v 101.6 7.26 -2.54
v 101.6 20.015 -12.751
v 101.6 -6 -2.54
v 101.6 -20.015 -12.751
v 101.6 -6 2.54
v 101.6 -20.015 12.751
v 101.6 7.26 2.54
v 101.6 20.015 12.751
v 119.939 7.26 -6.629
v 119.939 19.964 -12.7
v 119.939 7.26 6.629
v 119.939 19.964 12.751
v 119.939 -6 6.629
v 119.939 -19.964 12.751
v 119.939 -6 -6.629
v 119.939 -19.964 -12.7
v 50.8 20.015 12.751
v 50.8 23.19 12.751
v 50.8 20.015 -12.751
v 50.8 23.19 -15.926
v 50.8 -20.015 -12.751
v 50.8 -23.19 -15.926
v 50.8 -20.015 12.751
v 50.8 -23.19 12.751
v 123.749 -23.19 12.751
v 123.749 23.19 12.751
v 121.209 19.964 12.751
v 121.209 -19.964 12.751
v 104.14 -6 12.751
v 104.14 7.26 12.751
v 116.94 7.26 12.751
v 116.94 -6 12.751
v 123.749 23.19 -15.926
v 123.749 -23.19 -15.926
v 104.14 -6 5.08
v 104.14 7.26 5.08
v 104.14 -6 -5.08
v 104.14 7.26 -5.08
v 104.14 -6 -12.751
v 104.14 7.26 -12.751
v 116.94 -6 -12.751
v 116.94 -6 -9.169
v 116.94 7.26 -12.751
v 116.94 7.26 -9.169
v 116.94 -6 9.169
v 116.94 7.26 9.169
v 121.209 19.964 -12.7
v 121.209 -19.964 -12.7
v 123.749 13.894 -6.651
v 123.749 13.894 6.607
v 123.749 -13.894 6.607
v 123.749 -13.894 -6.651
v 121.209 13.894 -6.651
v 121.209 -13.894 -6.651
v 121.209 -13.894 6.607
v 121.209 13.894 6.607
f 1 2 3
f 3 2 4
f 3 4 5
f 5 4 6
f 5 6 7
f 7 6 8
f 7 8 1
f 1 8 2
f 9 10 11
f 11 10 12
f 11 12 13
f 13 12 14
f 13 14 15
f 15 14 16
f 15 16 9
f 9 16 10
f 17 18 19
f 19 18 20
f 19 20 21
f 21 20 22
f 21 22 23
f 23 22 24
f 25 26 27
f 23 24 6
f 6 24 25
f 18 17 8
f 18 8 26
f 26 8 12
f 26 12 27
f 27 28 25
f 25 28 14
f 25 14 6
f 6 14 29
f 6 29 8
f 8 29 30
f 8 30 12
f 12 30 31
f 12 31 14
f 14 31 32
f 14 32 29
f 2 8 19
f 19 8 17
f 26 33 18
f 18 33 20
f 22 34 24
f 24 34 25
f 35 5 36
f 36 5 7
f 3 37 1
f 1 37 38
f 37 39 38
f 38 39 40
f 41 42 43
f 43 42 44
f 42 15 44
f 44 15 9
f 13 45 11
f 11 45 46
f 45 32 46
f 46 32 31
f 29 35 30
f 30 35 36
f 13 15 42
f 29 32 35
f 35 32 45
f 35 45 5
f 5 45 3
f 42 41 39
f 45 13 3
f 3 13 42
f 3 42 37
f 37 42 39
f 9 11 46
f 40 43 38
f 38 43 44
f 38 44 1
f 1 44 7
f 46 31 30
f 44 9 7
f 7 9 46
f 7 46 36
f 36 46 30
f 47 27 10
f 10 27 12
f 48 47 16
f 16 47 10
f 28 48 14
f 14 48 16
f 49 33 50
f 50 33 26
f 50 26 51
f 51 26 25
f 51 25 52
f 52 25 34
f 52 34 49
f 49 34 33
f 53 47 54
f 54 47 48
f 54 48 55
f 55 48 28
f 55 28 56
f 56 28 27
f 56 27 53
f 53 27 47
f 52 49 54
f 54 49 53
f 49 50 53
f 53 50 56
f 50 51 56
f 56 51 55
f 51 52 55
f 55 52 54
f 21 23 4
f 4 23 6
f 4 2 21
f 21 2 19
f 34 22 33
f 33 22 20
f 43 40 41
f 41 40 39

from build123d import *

# Parameters (mm, degrees)
CROQUIS1_W              = 50.8
CROQUIS1_H              = 25.5016
SALIENTE_EXTRUIR1_DEPTH = 3.175
CROQUIS2_W              = 25.5016
CROQUIS2_H              = 46.3804
SALIENTE_EXTRUIR2_DEPTH = 18.3388
CORTAR_EXTRUIR2_DEPTH   = 13.26
SALIENTE_EXTRUIR3_DEPTH = 1.27
CROQUIS6_W              = 25.5016
CROQUIS6_H              = 46.3804
SALIENTE_EXTRUIR4_DEPTH = 2.54
CROQUIS7_W              = 25.5016
CROQUIS7_H              = 3.175
SALIENTE_EXTRUIR5_DEPTH = 50.8
CROQUIS8_W              = 72.9488
CROQUIS8_H              = 46.3804
SALIENTE_EXTRUIR6_DEPTH = 3.175


with BuildPart() as part:
    # Croquis1 → Saliente-Extruir1 (new body)
    with BuildSketch(Plane(origin=(0, 23.1902, 0), x_dir=(1, 0, 0), z_dir=(0, 1, 0))):
        with Locations((76.2, 0)):
            Rectangle(CROQUIS1_W, CROQUIS1_H)
    extrude(amount=-SALIENTE_EXTRUIR1_DEPTH)

    # Croquis2 → Saliente-Extruir2 (add)
    with BuildSketch(Plane(origin=(101.6, 0, 0), x_dir=(0, 0, -1), z_dir=(1, 0, 0))):
        Rectangle(CROQUIS2_W, CROQUIS2_H)
    extrude(amount=SALIENTE_EXTRUIR2_DEPTH)

    # Croquis4 → Cortar-Extruir2 (cut)
    with BuildSketch(Plane(origin=(0, 7.26, 0), x_dir=(1, 0, 0), z_dir=(0, 1, 0))):
        Polygon((104.14, -5.08), (104.14, -12.7508), (116.94, -12.7508), (116.94, -9.1694), (119.9388, -6.6294), (119.9388, 6.6294), (116.94, 9.1694), (116.94, 12.7508), (104.14, 12.7508), (104.14, 5.08), (101.6, 2.54), (101.6, -2.54), align=None)
    extrude(amount=-CORTAR_EXTRUIR2_DEPTH, mode=Mode.SUBTRACT)

    # Croquis5 → Saliente-Extruir3 (add)
    with BuildSketch(Plane(origin=(119.9388, 0, 0), x_dir=(0, 0, -1), z_dir=(1, 0, 0))):
        Polygon((-12.7508, -23.1902), (-12.7508, -19.9644), (12.7, -19.9644), (12.7, 19.9644), (-12.7508, 19.9644), (-12.7508, 23.1902), (12.7508, 23.1902), (12.7508, -23.1902), align=None)
    extrude(amount=SALIENTE_EXTRUIR3_DEPTH)

    # Croquis6 → Saliente-Extruir4 (add)
    with BuildSketch(Plane(origin=(121.2088, 0, 0), x_dir=(0, 0, -1), z_dir=(1, 0, 0))):
        Rectangle(CROQUIS6_W, CROQUIS6_H)
        Polygon((6.651353306, 1.27), (6.651353306, 13.8938), (-6.607446694, 13.8938), (-6.607446694, -13.8938), (6.651353306, -13.8938), align=None, mode=Mode.SUBTRACT)
    extrude(amount=SALIENTE_EXTRUIR4_DEPTH)

    # Croquis7 → Saliente-Extruir5 (add)
    with BuildSketch(Plane.ZY.offset(-101.6)):
        with Locations((0, -21.6027)):
            Rectangle(CROQUIS7_W, CROQUIS7_H)
    extrude(amount=SALIENTE_EXTRUIR5_DEPTH)

    # Croquis8 → Saliente-Extruir6 (add)
    with BuildSketch(Plane(origin=(0, 0, -12.7508), x_dir=(-1, 0, 0), z_dir=(0, 0, -1))):
        with Locations((-87.2744, 0)):
            Rectangle(CROQUIS8_W, CROQUIS8_H)
    extrude(amount=SALIENTE_EXTRUIR6_DEPTH)


solid = part.part
